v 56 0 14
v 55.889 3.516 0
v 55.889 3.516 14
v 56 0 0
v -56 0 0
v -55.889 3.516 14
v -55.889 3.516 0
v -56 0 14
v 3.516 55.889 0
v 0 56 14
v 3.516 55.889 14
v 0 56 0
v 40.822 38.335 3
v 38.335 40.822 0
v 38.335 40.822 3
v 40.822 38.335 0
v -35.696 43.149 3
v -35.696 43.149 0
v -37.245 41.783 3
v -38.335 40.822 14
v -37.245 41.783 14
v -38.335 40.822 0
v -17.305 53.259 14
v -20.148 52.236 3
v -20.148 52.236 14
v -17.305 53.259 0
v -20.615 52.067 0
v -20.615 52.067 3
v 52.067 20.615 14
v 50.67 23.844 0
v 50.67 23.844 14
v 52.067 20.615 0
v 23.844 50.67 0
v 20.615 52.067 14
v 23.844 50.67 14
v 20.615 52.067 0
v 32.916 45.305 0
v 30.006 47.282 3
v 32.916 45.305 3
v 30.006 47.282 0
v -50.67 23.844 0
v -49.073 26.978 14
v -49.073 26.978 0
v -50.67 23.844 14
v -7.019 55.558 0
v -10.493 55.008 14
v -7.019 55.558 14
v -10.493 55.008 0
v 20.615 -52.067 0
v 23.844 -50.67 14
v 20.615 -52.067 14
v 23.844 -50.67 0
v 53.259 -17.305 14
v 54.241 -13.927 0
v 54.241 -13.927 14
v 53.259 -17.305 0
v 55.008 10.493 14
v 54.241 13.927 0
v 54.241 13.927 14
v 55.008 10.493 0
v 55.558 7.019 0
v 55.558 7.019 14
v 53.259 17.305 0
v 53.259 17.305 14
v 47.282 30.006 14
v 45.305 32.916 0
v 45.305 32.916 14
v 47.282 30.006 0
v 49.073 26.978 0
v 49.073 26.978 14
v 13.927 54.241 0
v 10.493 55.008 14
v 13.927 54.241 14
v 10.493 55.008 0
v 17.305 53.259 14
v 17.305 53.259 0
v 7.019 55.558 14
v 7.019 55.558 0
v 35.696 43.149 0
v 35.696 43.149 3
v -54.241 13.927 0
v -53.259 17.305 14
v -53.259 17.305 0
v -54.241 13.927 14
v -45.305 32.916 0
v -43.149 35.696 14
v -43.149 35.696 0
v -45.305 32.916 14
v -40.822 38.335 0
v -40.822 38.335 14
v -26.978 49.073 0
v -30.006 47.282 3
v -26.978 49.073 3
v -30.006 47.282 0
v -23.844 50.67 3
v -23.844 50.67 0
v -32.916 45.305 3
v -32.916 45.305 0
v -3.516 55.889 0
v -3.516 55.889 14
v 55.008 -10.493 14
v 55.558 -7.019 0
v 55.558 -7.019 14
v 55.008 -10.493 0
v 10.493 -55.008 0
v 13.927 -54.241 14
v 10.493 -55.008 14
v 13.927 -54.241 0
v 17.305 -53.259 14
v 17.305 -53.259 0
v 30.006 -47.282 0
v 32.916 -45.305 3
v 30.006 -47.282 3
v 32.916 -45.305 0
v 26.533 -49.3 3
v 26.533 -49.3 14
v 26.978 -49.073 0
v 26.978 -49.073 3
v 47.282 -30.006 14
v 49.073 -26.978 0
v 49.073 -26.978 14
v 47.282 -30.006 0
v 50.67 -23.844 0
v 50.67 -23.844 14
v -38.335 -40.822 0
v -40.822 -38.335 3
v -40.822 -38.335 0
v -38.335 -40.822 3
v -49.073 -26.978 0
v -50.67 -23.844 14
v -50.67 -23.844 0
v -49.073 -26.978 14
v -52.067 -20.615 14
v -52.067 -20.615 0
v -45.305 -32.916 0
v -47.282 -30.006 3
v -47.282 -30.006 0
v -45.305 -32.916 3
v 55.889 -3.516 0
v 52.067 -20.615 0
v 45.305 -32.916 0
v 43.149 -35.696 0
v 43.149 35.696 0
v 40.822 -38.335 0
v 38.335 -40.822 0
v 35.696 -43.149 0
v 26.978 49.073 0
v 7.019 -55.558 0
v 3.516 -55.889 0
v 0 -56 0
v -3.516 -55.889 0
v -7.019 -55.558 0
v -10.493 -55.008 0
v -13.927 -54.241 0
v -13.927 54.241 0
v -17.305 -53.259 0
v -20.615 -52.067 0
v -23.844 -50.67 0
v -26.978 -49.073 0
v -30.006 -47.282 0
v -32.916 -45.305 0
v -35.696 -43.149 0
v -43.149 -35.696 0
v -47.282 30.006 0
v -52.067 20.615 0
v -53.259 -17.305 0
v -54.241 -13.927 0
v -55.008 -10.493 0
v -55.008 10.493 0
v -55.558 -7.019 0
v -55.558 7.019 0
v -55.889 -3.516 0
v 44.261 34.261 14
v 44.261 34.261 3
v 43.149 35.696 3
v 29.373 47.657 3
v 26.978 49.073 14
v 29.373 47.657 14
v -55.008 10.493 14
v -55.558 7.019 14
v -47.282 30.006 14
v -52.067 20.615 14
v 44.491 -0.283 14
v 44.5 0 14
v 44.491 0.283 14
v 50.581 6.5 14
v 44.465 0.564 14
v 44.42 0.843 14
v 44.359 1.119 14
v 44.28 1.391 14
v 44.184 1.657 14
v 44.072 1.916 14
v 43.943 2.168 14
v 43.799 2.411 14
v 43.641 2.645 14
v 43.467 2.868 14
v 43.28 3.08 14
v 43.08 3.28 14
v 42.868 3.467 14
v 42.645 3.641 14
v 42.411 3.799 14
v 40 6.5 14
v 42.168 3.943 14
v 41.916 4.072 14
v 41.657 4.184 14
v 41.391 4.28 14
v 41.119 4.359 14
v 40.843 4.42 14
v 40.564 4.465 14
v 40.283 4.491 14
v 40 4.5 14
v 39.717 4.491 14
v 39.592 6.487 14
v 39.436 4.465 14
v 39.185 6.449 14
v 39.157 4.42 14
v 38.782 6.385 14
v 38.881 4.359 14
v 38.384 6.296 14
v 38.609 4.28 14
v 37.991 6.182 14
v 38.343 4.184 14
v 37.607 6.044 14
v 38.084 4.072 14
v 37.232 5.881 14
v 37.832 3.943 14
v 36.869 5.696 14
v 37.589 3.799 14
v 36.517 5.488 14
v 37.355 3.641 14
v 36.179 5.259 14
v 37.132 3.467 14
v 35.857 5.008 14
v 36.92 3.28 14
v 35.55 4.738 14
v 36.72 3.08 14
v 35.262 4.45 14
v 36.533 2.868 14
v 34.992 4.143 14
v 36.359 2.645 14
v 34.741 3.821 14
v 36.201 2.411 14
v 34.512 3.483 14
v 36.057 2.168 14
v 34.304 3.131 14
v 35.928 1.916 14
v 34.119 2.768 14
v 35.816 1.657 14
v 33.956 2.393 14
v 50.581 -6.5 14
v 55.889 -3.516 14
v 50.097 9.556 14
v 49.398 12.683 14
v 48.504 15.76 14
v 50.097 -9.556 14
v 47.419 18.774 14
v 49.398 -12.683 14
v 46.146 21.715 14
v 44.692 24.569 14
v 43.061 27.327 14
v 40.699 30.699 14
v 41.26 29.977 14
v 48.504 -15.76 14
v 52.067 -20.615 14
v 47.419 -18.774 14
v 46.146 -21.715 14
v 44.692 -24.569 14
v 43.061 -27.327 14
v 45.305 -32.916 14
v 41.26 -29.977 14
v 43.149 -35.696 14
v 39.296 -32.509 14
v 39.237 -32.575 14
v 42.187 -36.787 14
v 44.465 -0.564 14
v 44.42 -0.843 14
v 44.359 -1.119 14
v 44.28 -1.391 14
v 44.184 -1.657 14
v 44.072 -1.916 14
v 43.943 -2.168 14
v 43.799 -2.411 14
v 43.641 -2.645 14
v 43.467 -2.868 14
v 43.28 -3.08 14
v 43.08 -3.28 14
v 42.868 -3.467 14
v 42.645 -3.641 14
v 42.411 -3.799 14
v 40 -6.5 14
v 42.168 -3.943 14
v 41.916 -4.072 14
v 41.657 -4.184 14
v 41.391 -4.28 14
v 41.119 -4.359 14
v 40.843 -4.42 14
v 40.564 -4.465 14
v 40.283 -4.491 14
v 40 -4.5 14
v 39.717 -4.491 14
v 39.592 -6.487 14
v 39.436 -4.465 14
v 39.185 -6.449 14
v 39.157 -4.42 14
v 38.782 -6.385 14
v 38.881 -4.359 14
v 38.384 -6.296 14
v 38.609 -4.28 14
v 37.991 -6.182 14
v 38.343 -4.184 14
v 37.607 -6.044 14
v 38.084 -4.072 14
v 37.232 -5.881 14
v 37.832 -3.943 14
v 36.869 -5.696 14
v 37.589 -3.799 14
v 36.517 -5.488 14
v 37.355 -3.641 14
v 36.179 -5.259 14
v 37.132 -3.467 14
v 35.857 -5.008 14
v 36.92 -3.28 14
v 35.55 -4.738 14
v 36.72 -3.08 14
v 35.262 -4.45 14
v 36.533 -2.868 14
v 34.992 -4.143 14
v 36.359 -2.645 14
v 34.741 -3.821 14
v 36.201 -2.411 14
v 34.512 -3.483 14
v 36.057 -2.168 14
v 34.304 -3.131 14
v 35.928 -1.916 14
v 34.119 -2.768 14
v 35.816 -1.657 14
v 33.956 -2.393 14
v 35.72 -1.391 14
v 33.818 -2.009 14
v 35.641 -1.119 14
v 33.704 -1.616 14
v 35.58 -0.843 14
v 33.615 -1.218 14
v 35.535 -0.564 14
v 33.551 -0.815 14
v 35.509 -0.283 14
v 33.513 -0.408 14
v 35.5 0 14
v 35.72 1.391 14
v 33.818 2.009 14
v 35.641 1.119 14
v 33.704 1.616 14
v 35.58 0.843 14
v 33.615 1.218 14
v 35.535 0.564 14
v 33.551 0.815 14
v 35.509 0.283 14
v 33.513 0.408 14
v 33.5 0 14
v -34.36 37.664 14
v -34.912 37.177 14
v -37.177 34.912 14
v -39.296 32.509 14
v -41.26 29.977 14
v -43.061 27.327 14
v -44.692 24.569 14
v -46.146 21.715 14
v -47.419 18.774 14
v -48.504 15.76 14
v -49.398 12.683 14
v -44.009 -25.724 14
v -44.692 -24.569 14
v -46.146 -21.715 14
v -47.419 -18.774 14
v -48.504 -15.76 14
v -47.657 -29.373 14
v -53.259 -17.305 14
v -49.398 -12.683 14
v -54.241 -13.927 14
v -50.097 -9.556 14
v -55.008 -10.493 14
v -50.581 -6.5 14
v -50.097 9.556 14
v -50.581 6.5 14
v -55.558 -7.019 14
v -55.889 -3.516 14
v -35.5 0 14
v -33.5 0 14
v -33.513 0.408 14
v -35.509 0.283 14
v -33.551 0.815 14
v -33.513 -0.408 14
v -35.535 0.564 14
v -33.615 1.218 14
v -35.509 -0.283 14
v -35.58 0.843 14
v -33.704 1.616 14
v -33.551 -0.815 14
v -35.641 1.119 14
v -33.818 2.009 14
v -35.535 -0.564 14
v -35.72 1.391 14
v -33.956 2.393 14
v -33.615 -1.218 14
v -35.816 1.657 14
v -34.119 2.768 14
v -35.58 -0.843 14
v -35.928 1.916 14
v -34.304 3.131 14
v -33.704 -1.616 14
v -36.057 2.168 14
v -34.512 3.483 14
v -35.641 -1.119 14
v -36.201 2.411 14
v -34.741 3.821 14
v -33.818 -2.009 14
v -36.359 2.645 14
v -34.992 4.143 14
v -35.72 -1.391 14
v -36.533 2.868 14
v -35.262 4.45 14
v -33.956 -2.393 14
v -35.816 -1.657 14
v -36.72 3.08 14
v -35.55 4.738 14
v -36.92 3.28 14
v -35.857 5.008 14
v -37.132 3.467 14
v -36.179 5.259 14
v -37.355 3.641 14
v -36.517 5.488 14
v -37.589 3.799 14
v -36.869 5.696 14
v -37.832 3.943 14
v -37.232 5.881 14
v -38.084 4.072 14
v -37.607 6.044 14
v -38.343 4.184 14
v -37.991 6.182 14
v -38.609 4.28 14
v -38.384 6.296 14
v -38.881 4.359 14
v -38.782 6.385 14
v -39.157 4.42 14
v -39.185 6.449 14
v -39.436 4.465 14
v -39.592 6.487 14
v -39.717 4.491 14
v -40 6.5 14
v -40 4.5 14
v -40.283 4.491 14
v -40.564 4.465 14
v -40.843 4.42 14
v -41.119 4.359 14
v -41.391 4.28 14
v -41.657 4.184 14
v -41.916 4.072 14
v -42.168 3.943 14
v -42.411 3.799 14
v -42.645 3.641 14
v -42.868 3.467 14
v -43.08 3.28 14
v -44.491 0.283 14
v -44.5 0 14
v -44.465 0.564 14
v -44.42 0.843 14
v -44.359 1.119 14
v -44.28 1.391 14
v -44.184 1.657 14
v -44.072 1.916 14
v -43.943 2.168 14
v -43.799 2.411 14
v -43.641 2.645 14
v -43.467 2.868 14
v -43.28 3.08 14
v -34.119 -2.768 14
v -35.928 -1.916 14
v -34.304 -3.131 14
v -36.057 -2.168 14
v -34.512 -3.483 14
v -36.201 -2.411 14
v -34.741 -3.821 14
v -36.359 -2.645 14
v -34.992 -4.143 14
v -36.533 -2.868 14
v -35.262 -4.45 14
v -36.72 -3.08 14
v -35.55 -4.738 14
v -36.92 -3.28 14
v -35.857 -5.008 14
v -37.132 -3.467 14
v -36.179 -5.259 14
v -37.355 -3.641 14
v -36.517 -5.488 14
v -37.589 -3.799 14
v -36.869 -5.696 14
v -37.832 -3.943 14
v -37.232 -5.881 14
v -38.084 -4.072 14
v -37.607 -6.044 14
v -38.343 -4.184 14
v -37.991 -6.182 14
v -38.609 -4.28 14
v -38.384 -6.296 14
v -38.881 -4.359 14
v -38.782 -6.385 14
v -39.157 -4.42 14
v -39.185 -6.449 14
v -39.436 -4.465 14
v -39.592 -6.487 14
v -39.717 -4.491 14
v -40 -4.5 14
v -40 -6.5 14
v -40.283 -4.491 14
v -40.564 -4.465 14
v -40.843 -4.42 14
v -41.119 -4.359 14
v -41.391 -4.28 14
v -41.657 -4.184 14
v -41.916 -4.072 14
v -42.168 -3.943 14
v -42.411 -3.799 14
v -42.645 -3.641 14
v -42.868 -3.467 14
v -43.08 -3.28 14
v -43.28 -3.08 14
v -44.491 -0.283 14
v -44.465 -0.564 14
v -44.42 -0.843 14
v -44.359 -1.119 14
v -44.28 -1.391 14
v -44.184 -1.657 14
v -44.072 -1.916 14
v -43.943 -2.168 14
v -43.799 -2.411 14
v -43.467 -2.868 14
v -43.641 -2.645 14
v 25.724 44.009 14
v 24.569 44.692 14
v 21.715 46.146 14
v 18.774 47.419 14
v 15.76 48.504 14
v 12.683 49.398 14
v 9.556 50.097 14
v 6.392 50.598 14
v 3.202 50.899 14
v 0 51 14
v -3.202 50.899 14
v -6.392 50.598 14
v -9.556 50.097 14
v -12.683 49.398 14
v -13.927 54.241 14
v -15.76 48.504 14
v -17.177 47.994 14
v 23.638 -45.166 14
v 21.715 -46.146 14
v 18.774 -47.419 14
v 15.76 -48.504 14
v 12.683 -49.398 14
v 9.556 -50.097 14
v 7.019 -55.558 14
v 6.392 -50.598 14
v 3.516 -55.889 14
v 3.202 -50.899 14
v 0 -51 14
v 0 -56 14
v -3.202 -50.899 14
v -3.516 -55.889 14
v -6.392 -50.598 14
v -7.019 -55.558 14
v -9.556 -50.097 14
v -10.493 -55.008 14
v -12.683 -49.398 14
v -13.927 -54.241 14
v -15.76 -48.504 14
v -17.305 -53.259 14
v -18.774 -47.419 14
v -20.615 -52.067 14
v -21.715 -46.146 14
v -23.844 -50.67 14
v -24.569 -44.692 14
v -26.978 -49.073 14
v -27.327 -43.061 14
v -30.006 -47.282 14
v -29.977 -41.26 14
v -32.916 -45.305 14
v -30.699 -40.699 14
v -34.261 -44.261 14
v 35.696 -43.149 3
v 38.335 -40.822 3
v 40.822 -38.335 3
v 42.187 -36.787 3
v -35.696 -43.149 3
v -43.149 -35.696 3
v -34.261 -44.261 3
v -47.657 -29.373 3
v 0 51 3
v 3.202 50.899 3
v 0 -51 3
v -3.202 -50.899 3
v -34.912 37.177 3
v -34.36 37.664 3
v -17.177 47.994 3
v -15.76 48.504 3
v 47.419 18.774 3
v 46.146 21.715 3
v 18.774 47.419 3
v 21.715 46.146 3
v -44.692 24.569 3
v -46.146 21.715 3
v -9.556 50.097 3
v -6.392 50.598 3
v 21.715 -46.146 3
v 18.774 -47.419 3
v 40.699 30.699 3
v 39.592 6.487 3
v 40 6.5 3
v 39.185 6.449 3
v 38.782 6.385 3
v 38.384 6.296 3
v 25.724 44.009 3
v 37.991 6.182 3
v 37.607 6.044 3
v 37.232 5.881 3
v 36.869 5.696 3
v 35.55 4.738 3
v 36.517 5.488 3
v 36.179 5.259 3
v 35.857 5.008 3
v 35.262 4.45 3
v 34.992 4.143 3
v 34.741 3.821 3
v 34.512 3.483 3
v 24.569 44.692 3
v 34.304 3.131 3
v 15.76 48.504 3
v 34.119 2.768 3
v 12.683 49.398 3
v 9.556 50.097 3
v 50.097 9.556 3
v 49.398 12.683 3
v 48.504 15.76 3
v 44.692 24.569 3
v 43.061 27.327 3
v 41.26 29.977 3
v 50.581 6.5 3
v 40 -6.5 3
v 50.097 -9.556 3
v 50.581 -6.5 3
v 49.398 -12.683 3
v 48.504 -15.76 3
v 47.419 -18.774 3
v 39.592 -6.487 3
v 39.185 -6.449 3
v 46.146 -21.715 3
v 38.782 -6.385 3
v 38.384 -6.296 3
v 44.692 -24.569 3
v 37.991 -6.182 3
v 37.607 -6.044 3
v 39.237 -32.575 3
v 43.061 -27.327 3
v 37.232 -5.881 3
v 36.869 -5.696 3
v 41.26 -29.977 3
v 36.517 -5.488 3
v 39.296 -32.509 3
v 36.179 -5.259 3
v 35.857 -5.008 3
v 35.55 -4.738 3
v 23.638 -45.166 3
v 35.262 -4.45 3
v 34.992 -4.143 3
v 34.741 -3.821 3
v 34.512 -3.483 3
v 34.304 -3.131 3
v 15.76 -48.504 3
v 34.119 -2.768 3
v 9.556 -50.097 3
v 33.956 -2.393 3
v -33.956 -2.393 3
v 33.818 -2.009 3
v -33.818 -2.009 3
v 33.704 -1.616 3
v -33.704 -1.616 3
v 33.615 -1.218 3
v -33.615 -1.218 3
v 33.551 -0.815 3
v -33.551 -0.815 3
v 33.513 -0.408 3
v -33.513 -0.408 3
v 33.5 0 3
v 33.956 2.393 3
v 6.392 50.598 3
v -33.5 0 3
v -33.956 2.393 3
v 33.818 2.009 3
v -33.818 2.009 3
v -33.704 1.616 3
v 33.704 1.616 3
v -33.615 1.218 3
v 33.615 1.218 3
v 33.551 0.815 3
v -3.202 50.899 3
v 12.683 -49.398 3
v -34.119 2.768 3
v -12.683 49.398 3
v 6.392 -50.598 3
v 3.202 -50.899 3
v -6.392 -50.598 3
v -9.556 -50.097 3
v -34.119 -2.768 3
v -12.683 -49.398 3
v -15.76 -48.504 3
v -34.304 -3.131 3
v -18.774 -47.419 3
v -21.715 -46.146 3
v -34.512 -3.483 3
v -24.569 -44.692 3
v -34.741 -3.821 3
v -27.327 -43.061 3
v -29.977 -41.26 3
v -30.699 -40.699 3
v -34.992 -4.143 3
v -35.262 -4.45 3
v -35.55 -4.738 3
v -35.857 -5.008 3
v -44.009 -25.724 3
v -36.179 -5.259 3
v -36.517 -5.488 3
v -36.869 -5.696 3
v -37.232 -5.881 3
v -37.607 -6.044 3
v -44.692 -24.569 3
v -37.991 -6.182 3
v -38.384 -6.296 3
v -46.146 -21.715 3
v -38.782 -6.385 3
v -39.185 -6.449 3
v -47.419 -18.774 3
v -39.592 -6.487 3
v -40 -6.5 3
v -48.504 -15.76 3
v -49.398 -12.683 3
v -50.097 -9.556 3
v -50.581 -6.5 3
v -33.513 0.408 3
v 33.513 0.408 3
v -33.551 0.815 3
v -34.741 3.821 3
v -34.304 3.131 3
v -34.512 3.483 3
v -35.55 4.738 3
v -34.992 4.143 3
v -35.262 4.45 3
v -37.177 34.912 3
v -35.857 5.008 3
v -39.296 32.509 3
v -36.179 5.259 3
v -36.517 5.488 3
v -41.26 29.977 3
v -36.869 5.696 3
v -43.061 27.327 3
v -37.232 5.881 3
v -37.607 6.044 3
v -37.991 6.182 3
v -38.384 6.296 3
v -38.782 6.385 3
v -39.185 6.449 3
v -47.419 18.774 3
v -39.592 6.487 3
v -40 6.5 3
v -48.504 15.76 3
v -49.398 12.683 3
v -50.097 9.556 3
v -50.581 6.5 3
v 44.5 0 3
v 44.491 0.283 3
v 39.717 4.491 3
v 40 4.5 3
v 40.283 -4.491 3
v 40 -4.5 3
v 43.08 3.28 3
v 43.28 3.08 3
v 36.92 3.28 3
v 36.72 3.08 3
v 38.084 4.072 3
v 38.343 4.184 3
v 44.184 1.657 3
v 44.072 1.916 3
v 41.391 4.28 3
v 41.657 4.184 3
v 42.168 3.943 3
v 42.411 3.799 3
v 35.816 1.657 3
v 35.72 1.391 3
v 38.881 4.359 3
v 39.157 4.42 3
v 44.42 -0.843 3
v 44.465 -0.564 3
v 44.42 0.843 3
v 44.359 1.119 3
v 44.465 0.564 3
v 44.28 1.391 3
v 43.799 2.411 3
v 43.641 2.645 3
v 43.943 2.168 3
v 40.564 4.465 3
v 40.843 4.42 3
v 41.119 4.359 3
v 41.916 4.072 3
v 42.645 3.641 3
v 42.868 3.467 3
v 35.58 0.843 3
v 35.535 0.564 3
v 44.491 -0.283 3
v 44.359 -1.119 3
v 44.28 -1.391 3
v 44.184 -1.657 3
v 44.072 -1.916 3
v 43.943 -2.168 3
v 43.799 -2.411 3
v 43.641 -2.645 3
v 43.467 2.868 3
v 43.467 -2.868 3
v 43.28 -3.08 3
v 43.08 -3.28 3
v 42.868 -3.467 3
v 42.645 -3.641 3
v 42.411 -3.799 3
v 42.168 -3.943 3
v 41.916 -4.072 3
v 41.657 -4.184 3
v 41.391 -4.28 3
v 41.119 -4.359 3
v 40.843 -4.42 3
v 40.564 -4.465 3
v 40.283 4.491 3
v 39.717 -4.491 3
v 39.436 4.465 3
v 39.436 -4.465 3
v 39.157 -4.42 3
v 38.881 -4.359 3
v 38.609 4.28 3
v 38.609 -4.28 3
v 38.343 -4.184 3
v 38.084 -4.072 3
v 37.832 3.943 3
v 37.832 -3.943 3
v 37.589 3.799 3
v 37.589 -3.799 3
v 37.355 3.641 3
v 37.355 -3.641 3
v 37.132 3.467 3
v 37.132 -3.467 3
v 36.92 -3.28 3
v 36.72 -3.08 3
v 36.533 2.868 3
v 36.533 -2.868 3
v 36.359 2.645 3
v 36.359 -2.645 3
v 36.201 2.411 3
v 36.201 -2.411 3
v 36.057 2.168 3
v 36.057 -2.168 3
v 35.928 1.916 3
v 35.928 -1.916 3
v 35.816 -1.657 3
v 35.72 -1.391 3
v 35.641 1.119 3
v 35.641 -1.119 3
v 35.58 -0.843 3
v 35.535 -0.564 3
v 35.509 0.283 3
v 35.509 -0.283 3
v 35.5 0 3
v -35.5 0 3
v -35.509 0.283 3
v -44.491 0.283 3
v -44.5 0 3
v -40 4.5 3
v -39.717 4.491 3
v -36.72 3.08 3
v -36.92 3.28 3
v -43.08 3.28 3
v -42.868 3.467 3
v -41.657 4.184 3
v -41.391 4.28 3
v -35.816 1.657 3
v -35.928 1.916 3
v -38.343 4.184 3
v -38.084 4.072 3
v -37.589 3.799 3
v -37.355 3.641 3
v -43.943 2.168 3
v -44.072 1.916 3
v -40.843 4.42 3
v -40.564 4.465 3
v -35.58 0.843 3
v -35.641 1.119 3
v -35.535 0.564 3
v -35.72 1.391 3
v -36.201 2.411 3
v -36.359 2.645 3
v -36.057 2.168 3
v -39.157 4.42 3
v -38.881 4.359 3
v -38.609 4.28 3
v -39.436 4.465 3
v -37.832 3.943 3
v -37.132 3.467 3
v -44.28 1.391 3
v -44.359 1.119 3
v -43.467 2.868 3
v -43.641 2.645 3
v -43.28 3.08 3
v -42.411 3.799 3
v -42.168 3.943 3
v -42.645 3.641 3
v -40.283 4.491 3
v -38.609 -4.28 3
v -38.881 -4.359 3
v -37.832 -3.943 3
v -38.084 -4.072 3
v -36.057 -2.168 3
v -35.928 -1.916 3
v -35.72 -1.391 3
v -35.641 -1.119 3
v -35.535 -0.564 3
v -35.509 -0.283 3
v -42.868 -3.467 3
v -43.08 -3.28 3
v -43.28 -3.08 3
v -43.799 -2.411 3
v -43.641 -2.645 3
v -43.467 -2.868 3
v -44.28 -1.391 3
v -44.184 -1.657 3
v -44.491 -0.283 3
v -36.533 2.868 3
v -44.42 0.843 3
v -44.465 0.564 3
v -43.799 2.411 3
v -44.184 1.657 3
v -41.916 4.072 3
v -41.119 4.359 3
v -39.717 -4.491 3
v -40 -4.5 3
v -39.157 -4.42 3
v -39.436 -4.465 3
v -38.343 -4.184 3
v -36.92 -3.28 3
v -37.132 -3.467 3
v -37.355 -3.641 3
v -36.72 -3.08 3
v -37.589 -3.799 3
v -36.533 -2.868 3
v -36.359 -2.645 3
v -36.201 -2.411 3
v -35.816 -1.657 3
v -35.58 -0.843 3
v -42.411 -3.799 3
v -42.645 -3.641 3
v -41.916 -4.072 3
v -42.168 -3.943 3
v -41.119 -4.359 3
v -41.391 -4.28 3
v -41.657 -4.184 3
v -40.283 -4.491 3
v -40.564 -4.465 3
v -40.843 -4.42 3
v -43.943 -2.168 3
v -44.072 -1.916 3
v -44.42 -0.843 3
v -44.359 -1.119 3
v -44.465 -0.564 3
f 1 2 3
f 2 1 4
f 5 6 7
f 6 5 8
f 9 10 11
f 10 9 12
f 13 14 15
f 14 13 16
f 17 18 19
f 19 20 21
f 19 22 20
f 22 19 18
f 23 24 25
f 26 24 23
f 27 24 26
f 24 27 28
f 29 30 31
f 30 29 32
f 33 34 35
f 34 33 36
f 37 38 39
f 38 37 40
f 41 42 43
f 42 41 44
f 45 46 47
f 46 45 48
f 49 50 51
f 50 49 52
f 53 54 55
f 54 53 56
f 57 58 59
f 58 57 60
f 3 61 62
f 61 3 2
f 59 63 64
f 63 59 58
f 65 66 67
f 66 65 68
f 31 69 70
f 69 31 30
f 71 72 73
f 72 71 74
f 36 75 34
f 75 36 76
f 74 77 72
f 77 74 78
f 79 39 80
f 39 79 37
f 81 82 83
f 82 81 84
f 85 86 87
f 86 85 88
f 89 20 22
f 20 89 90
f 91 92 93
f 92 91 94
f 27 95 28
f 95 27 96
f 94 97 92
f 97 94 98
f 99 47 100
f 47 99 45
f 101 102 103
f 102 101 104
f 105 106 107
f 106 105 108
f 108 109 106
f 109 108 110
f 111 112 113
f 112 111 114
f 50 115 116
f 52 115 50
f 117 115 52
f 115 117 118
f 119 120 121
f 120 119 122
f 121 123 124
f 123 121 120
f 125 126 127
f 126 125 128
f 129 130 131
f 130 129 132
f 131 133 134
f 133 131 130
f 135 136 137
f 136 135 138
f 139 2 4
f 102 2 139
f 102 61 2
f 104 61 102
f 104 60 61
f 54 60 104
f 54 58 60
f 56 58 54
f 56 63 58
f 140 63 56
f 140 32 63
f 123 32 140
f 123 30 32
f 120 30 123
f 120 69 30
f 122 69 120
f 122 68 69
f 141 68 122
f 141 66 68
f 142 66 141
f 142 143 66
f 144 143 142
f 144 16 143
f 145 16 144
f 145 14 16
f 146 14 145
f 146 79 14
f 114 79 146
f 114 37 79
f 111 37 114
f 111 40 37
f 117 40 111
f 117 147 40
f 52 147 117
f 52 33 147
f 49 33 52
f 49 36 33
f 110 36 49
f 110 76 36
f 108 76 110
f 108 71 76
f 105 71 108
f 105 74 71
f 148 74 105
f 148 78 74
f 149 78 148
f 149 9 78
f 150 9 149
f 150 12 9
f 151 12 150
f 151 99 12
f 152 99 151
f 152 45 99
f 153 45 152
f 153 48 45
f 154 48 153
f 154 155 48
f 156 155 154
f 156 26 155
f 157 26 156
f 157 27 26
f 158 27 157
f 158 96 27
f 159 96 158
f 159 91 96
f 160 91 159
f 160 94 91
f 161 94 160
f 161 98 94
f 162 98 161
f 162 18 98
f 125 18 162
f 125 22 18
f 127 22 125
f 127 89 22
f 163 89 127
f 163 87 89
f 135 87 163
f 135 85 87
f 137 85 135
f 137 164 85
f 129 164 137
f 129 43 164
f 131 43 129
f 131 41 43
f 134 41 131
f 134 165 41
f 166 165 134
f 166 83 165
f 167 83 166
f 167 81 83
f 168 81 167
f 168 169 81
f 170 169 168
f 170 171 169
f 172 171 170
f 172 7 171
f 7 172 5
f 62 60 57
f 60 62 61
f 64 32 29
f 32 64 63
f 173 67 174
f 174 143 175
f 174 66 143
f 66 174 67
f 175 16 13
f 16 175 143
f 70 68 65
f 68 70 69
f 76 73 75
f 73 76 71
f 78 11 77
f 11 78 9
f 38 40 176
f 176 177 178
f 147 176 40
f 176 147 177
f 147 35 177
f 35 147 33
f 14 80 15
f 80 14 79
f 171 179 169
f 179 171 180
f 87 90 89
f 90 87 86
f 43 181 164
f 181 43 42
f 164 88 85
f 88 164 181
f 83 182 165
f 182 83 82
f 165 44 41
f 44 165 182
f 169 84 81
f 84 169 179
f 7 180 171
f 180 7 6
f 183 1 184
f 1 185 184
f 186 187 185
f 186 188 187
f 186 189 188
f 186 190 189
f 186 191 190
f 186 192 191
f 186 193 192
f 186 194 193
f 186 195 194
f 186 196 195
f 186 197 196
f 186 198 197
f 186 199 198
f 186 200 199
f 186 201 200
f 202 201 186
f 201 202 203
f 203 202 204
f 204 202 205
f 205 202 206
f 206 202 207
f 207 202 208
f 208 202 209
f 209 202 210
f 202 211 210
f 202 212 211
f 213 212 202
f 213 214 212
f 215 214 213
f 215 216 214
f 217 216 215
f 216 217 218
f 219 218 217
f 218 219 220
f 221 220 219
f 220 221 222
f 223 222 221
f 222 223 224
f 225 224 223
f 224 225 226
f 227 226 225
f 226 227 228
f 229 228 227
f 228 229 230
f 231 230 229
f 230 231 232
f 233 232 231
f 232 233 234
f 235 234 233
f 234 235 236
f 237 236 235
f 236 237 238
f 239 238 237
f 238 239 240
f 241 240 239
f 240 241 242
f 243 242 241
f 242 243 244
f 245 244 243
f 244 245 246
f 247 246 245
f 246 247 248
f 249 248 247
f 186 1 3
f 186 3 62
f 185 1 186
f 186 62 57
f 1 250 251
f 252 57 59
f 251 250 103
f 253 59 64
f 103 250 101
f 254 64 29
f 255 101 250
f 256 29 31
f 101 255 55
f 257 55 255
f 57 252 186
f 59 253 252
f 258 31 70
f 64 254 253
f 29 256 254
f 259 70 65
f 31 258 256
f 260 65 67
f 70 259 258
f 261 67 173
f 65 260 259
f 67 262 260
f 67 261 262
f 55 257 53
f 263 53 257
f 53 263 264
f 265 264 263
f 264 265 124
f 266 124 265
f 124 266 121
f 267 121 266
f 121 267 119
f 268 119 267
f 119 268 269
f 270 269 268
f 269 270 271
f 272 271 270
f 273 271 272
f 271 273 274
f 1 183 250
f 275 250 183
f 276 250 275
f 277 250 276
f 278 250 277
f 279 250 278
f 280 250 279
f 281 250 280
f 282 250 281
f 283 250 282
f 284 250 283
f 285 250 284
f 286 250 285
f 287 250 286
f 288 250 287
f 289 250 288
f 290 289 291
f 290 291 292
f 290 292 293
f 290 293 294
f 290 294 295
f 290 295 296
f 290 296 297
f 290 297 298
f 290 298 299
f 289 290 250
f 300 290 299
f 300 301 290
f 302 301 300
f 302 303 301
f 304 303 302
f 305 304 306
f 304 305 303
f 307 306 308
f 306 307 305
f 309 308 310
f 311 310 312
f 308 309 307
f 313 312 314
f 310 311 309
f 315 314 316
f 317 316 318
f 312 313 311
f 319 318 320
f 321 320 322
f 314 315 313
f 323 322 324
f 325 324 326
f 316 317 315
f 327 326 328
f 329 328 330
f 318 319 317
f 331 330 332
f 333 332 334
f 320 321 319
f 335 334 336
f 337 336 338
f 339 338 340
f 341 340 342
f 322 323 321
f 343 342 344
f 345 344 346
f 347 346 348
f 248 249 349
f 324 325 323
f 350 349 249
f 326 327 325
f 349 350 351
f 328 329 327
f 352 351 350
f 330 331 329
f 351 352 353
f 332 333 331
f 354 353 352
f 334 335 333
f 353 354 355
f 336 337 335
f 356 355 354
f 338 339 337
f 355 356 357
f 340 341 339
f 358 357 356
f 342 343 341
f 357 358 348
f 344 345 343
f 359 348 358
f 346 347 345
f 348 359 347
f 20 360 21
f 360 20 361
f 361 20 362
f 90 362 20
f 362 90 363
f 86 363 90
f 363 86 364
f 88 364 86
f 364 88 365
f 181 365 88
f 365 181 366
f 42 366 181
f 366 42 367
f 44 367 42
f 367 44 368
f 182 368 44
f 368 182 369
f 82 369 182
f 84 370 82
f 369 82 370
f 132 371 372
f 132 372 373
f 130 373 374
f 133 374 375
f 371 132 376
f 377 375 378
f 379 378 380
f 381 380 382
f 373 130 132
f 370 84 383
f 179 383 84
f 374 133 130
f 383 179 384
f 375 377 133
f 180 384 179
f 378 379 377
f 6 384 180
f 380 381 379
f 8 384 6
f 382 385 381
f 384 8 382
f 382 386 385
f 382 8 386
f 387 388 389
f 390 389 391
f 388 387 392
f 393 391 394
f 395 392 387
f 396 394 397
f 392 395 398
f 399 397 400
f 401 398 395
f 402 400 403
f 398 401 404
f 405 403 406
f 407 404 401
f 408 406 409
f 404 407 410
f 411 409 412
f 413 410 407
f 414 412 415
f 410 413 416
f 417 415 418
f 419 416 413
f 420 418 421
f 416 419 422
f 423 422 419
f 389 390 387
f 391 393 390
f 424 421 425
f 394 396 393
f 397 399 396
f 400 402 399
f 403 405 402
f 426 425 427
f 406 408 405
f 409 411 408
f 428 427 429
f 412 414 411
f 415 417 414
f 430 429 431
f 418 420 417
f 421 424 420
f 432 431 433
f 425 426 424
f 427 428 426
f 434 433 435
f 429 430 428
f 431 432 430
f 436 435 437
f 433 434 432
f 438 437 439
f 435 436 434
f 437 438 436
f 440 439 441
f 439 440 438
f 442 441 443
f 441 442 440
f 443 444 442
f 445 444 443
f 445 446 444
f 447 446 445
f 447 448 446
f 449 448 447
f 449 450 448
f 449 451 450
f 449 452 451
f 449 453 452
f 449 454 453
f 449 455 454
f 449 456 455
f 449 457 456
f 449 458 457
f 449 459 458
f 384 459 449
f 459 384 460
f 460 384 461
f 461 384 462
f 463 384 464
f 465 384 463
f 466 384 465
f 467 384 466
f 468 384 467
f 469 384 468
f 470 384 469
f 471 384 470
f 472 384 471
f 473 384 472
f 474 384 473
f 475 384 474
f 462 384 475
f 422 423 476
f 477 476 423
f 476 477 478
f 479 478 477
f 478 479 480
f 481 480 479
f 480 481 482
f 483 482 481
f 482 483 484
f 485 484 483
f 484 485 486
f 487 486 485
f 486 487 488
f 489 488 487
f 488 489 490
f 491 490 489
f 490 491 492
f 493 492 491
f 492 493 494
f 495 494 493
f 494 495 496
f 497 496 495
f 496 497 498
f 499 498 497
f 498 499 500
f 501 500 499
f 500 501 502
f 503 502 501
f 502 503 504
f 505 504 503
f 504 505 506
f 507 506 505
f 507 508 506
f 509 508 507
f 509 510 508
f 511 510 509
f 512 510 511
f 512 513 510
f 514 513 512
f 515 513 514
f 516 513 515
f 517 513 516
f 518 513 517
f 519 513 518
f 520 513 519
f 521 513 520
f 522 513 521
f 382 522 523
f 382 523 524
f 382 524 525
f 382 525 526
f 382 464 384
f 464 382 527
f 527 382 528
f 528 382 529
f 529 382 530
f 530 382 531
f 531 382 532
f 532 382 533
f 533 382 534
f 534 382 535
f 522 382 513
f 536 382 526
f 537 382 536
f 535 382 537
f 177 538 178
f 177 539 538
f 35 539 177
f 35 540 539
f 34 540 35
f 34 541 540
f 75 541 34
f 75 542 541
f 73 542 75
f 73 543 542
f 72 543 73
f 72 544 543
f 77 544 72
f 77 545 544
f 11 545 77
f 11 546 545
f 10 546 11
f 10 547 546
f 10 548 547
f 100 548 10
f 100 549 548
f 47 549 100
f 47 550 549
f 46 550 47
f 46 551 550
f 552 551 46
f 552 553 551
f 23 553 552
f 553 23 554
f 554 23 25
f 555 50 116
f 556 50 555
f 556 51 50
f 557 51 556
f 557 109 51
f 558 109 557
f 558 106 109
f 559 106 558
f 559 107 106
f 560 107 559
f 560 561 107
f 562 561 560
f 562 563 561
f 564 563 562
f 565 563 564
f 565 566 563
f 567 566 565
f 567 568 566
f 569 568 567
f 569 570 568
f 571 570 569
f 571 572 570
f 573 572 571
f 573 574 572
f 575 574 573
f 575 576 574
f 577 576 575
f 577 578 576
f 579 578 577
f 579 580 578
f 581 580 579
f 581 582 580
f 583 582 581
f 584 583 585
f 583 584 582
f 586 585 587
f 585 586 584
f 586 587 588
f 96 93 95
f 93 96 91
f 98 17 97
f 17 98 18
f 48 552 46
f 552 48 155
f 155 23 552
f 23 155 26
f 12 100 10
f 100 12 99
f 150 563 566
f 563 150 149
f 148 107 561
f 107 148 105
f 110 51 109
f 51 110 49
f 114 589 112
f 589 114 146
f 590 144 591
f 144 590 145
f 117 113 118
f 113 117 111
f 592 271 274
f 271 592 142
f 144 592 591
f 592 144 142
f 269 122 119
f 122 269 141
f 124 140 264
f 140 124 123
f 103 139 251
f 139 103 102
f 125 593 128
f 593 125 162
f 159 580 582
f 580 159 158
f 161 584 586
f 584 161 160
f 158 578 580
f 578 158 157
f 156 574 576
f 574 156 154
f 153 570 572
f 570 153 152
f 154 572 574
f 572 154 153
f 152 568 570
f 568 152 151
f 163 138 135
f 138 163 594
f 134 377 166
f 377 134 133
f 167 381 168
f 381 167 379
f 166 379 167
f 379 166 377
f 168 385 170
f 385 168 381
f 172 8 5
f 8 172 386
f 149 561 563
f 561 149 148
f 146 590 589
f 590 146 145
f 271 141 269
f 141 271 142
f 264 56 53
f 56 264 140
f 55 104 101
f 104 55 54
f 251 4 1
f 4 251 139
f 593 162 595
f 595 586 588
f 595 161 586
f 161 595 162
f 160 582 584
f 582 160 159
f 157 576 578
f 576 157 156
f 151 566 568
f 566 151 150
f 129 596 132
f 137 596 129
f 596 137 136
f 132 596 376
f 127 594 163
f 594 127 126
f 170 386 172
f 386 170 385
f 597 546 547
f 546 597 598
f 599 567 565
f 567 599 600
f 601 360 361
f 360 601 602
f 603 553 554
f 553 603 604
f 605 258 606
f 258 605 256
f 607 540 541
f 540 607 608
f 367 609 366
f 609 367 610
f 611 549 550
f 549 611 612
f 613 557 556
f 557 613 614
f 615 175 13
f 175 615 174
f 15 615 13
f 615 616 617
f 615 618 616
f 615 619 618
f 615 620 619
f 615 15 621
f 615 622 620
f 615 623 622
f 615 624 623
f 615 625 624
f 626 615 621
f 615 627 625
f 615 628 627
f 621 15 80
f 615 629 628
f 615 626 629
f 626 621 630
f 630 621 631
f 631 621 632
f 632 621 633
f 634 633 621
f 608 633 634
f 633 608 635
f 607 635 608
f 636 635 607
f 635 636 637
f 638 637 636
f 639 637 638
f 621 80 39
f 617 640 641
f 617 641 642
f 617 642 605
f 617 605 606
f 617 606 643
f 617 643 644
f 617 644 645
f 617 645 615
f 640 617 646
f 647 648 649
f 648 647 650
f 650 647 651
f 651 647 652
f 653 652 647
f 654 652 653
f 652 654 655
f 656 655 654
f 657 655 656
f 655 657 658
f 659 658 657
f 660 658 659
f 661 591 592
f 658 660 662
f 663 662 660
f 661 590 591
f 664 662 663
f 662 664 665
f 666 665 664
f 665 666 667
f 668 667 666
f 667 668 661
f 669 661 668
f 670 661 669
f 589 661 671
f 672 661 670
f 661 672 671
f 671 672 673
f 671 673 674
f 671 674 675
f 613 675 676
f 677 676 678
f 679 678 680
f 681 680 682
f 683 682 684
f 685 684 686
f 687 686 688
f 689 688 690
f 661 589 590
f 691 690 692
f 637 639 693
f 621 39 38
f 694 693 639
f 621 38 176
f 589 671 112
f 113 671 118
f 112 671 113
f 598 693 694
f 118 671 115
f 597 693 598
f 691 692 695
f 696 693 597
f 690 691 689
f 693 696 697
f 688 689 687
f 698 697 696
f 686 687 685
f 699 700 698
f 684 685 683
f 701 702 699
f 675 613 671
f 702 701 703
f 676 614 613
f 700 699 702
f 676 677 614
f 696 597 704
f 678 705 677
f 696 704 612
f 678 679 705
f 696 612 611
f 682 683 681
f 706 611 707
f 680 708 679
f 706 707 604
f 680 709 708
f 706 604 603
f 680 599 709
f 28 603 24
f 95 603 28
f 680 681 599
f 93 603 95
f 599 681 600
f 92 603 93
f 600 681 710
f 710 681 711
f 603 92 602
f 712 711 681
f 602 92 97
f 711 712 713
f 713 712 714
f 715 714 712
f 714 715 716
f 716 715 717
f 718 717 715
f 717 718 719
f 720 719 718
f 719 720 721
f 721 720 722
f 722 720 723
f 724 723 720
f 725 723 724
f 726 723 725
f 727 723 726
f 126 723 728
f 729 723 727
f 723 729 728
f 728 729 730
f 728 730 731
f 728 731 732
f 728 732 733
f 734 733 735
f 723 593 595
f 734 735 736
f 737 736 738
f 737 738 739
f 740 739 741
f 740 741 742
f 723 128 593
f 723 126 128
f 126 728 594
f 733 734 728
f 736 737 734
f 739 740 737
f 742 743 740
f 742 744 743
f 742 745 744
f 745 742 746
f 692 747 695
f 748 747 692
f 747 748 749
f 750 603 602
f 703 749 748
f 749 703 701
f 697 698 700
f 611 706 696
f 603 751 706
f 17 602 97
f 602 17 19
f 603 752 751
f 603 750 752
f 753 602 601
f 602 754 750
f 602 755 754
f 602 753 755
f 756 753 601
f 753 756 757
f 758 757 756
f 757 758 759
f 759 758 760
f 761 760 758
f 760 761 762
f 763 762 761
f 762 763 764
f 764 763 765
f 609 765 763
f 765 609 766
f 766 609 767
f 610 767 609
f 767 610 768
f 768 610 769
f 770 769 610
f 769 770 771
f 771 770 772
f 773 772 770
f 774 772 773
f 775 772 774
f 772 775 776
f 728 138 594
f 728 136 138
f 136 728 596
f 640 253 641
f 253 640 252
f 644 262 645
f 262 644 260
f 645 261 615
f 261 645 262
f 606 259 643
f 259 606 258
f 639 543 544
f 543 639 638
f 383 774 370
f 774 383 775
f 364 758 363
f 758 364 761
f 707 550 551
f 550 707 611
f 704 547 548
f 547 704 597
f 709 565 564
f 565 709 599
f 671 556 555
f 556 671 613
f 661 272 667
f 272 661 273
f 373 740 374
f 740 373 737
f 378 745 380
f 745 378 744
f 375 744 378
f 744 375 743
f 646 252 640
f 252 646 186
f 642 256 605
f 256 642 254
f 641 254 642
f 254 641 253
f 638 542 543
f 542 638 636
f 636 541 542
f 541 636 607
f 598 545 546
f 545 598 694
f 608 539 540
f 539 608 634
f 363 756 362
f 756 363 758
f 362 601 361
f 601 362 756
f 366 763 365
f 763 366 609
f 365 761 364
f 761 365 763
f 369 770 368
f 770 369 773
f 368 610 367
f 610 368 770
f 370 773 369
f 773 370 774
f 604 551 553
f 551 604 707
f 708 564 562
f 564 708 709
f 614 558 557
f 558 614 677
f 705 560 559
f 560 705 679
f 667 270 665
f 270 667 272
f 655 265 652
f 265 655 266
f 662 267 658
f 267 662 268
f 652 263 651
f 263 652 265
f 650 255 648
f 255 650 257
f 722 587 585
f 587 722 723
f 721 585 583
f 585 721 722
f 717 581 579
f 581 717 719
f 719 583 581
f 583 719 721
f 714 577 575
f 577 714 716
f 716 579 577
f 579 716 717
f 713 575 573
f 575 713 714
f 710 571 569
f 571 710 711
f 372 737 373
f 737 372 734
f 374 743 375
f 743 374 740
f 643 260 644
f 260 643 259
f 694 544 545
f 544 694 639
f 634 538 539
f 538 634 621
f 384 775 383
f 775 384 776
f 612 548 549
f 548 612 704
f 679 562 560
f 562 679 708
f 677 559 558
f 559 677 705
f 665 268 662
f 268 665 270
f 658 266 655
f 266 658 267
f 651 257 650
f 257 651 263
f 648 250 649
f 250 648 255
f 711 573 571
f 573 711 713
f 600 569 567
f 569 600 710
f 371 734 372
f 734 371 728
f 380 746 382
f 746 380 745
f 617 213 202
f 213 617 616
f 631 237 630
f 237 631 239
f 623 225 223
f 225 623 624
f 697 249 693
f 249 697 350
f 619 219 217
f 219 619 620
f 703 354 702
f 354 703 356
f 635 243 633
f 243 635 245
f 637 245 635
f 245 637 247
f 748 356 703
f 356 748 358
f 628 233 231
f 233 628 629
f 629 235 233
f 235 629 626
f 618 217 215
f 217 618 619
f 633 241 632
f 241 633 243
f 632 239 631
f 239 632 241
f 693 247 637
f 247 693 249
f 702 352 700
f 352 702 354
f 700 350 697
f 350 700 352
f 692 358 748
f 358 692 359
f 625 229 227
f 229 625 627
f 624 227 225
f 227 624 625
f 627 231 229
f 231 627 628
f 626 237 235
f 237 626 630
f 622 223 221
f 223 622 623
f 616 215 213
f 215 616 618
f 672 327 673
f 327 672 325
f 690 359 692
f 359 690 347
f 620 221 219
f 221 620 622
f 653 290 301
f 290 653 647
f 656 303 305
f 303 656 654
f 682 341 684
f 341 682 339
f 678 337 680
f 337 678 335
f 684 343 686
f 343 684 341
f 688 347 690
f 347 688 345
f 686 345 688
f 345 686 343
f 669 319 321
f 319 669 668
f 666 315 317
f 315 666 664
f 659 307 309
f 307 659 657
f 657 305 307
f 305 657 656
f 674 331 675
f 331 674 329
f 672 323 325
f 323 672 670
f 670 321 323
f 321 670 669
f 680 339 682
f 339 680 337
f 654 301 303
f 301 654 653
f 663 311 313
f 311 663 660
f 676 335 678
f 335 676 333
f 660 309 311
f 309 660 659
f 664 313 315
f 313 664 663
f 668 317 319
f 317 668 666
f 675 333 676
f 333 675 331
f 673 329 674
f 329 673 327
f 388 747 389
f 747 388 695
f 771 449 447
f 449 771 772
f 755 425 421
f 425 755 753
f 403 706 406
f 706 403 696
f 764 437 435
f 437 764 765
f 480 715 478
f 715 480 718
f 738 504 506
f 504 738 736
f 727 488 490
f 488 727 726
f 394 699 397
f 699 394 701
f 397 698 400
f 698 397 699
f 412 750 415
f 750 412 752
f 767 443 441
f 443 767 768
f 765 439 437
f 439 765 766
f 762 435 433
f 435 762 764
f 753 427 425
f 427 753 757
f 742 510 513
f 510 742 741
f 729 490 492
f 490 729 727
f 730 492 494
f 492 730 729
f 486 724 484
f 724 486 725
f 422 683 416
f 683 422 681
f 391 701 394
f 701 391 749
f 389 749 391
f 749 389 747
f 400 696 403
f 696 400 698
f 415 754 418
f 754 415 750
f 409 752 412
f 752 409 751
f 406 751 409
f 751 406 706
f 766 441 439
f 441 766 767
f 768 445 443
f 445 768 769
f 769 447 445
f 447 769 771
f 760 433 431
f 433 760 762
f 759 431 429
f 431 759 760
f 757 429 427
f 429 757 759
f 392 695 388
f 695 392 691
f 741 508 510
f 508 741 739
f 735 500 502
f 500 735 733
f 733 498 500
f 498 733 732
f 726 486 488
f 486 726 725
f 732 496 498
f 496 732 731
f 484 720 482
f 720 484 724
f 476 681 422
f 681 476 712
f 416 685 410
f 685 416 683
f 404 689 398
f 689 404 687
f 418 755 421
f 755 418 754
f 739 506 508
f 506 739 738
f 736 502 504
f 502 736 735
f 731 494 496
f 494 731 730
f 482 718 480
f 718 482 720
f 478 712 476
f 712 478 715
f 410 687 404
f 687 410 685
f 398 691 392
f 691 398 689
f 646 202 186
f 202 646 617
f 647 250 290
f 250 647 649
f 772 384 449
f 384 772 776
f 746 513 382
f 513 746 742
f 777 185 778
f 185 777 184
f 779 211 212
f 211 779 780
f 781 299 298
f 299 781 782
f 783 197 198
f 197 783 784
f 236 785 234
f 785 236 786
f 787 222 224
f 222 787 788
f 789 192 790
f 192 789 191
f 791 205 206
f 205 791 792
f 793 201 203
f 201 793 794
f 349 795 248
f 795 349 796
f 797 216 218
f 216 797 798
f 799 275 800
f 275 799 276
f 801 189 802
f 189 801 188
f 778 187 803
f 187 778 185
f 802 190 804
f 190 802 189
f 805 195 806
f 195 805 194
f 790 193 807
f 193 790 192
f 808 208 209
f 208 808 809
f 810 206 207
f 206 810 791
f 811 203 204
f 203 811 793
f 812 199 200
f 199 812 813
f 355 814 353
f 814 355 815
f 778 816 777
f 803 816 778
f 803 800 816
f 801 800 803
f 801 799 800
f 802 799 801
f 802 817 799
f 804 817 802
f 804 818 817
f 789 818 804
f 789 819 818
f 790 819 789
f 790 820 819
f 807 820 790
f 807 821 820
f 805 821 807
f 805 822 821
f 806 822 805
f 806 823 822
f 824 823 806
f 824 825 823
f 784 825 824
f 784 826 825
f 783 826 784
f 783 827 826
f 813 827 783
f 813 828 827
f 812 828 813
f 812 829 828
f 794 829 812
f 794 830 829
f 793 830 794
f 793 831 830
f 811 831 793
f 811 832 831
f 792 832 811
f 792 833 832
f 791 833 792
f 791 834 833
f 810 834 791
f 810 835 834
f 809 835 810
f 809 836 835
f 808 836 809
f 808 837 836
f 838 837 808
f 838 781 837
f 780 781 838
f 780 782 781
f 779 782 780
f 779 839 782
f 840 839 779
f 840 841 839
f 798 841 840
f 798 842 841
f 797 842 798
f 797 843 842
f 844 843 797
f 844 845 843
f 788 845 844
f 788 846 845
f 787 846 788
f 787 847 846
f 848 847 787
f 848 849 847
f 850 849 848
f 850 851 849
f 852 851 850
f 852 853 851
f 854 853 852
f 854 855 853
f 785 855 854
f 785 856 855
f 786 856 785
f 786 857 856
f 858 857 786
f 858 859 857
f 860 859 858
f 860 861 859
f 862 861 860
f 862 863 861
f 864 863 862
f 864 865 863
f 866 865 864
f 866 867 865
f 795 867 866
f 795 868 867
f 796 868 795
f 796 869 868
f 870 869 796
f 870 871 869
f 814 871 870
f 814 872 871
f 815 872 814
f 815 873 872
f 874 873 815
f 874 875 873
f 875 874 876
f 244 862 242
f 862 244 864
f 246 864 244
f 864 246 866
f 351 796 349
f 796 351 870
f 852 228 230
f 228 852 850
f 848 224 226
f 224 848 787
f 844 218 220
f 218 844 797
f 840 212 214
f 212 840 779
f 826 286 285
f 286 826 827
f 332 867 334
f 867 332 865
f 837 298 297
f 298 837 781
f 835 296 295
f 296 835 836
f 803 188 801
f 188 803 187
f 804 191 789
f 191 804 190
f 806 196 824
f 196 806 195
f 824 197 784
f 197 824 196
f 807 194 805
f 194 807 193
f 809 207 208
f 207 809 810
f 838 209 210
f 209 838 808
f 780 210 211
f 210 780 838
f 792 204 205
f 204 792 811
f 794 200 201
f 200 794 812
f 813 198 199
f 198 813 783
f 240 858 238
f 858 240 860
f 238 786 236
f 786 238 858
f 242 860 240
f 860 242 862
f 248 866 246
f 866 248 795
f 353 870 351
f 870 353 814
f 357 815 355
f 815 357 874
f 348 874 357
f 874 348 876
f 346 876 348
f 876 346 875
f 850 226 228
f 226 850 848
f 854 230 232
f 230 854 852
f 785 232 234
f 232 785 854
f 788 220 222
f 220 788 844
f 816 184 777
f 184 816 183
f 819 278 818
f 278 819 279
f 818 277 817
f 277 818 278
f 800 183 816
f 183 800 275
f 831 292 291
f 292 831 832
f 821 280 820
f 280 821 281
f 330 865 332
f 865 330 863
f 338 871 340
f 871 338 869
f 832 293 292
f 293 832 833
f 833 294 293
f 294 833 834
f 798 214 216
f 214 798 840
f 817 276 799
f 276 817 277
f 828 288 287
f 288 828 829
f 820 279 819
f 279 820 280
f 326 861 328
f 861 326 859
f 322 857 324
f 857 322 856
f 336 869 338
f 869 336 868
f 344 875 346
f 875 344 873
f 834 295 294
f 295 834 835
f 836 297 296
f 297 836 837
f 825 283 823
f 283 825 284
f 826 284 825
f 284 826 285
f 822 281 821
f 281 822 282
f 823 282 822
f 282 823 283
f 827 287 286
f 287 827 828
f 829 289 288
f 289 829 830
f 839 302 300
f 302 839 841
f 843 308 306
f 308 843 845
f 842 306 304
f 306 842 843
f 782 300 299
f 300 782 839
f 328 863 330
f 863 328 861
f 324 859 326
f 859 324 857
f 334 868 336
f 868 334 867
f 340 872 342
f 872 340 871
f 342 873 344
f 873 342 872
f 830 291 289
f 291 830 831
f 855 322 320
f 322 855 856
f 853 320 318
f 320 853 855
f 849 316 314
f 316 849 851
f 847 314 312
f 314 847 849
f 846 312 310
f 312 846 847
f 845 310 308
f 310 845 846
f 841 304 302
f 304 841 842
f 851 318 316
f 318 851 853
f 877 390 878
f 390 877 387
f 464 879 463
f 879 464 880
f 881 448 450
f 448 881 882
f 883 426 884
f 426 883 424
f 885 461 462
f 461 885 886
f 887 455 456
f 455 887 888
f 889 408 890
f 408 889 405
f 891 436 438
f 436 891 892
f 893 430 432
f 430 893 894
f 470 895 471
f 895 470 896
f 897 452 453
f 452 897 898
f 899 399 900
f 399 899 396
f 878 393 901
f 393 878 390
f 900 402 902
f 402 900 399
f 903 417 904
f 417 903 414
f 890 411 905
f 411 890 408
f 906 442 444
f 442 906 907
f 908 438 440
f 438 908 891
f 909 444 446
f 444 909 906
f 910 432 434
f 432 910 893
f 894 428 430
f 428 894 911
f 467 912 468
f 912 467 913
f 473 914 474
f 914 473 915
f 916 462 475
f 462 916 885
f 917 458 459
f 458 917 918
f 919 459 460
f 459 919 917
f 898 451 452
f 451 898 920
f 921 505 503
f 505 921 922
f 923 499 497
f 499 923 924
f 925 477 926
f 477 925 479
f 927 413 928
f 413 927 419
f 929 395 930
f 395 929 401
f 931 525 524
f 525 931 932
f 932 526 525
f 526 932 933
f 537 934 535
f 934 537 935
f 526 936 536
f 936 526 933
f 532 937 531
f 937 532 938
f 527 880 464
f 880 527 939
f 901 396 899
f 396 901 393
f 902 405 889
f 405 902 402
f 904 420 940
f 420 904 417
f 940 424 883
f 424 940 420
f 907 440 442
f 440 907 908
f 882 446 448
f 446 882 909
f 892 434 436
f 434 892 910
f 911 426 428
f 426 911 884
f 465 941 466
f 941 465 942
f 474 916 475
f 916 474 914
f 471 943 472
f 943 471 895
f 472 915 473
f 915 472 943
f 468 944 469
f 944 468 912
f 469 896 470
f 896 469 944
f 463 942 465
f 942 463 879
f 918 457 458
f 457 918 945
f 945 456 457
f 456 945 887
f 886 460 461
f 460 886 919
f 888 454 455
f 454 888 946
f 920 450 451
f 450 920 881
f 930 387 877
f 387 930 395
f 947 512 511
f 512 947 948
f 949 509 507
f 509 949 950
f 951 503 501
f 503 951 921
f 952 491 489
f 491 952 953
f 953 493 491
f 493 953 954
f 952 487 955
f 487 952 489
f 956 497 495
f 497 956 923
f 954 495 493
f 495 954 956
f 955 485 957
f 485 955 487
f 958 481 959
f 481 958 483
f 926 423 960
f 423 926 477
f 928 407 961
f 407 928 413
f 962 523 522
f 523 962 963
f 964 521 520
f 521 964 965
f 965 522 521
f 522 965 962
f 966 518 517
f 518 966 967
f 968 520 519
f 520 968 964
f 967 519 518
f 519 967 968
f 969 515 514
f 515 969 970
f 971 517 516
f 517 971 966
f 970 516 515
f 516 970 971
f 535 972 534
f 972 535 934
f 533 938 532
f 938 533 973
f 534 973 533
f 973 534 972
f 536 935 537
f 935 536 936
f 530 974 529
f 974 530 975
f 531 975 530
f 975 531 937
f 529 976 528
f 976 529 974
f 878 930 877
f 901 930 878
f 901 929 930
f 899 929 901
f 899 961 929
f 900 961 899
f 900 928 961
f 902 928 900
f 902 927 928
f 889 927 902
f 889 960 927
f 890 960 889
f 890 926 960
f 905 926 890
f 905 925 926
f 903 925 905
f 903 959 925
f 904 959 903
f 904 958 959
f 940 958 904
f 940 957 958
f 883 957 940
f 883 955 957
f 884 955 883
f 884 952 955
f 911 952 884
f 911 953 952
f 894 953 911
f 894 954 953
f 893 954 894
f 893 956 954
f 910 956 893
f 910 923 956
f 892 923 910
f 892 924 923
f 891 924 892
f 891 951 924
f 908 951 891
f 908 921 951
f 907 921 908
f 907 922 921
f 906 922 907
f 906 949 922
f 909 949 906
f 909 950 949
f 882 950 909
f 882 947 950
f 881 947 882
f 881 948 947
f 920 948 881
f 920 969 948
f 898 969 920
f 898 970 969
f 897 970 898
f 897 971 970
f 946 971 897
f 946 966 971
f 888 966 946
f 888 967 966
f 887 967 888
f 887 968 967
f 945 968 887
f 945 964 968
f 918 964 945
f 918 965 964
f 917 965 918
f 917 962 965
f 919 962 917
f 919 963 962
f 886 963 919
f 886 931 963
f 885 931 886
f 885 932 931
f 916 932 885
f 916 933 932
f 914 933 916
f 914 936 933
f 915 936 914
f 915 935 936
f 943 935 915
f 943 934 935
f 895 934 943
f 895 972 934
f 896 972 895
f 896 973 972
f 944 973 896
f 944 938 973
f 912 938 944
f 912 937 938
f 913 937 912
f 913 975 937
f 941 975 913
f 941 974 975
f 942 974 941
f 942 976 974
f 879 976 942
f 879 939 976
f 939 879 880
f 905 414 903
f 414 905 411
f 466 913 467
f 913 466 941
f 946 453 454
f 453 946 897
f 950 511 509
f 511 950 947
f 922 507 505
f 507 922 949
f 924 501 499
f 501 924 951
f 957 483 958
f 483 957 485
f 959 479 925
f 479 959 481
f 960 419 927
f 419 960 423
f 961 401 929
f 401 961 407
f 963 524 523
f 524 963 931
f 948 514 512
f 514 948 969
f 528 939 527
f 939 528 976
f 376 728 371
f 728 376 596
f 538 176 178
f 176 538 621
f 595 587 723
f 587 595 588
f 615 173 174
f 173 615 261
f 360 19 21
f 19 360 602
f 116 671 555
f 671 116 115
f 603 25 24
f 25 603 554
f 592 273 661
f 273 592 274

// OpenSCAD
$fn=100;

difference(){
    union(){
        difference(){
            cylinder(14,112/2,112/2);
            translate([0,0,3])cylinder(11,102/2,102/2);
        }
        translate([40,0,3])cylinder(11,13/2,13/2);
        translate([-40,0,3])cylinder(11,13/2,13/2);
        translate([40,-6.5,3])cube([12,13,11]);
        translate([-52,-6.5,3])cube([12,13,11]);
    }
    translate([40,0,3])cylinder(11,9/2,9/2);
    translate([-40,0,3])cylinder(11,9/2,9/2);
    translate([-50,-60,3])rotate([0,0,45])cube([150,20,11]);
    translate([-50,60,3])rotate([0,0,-55])cube([150,20,11]);
}
